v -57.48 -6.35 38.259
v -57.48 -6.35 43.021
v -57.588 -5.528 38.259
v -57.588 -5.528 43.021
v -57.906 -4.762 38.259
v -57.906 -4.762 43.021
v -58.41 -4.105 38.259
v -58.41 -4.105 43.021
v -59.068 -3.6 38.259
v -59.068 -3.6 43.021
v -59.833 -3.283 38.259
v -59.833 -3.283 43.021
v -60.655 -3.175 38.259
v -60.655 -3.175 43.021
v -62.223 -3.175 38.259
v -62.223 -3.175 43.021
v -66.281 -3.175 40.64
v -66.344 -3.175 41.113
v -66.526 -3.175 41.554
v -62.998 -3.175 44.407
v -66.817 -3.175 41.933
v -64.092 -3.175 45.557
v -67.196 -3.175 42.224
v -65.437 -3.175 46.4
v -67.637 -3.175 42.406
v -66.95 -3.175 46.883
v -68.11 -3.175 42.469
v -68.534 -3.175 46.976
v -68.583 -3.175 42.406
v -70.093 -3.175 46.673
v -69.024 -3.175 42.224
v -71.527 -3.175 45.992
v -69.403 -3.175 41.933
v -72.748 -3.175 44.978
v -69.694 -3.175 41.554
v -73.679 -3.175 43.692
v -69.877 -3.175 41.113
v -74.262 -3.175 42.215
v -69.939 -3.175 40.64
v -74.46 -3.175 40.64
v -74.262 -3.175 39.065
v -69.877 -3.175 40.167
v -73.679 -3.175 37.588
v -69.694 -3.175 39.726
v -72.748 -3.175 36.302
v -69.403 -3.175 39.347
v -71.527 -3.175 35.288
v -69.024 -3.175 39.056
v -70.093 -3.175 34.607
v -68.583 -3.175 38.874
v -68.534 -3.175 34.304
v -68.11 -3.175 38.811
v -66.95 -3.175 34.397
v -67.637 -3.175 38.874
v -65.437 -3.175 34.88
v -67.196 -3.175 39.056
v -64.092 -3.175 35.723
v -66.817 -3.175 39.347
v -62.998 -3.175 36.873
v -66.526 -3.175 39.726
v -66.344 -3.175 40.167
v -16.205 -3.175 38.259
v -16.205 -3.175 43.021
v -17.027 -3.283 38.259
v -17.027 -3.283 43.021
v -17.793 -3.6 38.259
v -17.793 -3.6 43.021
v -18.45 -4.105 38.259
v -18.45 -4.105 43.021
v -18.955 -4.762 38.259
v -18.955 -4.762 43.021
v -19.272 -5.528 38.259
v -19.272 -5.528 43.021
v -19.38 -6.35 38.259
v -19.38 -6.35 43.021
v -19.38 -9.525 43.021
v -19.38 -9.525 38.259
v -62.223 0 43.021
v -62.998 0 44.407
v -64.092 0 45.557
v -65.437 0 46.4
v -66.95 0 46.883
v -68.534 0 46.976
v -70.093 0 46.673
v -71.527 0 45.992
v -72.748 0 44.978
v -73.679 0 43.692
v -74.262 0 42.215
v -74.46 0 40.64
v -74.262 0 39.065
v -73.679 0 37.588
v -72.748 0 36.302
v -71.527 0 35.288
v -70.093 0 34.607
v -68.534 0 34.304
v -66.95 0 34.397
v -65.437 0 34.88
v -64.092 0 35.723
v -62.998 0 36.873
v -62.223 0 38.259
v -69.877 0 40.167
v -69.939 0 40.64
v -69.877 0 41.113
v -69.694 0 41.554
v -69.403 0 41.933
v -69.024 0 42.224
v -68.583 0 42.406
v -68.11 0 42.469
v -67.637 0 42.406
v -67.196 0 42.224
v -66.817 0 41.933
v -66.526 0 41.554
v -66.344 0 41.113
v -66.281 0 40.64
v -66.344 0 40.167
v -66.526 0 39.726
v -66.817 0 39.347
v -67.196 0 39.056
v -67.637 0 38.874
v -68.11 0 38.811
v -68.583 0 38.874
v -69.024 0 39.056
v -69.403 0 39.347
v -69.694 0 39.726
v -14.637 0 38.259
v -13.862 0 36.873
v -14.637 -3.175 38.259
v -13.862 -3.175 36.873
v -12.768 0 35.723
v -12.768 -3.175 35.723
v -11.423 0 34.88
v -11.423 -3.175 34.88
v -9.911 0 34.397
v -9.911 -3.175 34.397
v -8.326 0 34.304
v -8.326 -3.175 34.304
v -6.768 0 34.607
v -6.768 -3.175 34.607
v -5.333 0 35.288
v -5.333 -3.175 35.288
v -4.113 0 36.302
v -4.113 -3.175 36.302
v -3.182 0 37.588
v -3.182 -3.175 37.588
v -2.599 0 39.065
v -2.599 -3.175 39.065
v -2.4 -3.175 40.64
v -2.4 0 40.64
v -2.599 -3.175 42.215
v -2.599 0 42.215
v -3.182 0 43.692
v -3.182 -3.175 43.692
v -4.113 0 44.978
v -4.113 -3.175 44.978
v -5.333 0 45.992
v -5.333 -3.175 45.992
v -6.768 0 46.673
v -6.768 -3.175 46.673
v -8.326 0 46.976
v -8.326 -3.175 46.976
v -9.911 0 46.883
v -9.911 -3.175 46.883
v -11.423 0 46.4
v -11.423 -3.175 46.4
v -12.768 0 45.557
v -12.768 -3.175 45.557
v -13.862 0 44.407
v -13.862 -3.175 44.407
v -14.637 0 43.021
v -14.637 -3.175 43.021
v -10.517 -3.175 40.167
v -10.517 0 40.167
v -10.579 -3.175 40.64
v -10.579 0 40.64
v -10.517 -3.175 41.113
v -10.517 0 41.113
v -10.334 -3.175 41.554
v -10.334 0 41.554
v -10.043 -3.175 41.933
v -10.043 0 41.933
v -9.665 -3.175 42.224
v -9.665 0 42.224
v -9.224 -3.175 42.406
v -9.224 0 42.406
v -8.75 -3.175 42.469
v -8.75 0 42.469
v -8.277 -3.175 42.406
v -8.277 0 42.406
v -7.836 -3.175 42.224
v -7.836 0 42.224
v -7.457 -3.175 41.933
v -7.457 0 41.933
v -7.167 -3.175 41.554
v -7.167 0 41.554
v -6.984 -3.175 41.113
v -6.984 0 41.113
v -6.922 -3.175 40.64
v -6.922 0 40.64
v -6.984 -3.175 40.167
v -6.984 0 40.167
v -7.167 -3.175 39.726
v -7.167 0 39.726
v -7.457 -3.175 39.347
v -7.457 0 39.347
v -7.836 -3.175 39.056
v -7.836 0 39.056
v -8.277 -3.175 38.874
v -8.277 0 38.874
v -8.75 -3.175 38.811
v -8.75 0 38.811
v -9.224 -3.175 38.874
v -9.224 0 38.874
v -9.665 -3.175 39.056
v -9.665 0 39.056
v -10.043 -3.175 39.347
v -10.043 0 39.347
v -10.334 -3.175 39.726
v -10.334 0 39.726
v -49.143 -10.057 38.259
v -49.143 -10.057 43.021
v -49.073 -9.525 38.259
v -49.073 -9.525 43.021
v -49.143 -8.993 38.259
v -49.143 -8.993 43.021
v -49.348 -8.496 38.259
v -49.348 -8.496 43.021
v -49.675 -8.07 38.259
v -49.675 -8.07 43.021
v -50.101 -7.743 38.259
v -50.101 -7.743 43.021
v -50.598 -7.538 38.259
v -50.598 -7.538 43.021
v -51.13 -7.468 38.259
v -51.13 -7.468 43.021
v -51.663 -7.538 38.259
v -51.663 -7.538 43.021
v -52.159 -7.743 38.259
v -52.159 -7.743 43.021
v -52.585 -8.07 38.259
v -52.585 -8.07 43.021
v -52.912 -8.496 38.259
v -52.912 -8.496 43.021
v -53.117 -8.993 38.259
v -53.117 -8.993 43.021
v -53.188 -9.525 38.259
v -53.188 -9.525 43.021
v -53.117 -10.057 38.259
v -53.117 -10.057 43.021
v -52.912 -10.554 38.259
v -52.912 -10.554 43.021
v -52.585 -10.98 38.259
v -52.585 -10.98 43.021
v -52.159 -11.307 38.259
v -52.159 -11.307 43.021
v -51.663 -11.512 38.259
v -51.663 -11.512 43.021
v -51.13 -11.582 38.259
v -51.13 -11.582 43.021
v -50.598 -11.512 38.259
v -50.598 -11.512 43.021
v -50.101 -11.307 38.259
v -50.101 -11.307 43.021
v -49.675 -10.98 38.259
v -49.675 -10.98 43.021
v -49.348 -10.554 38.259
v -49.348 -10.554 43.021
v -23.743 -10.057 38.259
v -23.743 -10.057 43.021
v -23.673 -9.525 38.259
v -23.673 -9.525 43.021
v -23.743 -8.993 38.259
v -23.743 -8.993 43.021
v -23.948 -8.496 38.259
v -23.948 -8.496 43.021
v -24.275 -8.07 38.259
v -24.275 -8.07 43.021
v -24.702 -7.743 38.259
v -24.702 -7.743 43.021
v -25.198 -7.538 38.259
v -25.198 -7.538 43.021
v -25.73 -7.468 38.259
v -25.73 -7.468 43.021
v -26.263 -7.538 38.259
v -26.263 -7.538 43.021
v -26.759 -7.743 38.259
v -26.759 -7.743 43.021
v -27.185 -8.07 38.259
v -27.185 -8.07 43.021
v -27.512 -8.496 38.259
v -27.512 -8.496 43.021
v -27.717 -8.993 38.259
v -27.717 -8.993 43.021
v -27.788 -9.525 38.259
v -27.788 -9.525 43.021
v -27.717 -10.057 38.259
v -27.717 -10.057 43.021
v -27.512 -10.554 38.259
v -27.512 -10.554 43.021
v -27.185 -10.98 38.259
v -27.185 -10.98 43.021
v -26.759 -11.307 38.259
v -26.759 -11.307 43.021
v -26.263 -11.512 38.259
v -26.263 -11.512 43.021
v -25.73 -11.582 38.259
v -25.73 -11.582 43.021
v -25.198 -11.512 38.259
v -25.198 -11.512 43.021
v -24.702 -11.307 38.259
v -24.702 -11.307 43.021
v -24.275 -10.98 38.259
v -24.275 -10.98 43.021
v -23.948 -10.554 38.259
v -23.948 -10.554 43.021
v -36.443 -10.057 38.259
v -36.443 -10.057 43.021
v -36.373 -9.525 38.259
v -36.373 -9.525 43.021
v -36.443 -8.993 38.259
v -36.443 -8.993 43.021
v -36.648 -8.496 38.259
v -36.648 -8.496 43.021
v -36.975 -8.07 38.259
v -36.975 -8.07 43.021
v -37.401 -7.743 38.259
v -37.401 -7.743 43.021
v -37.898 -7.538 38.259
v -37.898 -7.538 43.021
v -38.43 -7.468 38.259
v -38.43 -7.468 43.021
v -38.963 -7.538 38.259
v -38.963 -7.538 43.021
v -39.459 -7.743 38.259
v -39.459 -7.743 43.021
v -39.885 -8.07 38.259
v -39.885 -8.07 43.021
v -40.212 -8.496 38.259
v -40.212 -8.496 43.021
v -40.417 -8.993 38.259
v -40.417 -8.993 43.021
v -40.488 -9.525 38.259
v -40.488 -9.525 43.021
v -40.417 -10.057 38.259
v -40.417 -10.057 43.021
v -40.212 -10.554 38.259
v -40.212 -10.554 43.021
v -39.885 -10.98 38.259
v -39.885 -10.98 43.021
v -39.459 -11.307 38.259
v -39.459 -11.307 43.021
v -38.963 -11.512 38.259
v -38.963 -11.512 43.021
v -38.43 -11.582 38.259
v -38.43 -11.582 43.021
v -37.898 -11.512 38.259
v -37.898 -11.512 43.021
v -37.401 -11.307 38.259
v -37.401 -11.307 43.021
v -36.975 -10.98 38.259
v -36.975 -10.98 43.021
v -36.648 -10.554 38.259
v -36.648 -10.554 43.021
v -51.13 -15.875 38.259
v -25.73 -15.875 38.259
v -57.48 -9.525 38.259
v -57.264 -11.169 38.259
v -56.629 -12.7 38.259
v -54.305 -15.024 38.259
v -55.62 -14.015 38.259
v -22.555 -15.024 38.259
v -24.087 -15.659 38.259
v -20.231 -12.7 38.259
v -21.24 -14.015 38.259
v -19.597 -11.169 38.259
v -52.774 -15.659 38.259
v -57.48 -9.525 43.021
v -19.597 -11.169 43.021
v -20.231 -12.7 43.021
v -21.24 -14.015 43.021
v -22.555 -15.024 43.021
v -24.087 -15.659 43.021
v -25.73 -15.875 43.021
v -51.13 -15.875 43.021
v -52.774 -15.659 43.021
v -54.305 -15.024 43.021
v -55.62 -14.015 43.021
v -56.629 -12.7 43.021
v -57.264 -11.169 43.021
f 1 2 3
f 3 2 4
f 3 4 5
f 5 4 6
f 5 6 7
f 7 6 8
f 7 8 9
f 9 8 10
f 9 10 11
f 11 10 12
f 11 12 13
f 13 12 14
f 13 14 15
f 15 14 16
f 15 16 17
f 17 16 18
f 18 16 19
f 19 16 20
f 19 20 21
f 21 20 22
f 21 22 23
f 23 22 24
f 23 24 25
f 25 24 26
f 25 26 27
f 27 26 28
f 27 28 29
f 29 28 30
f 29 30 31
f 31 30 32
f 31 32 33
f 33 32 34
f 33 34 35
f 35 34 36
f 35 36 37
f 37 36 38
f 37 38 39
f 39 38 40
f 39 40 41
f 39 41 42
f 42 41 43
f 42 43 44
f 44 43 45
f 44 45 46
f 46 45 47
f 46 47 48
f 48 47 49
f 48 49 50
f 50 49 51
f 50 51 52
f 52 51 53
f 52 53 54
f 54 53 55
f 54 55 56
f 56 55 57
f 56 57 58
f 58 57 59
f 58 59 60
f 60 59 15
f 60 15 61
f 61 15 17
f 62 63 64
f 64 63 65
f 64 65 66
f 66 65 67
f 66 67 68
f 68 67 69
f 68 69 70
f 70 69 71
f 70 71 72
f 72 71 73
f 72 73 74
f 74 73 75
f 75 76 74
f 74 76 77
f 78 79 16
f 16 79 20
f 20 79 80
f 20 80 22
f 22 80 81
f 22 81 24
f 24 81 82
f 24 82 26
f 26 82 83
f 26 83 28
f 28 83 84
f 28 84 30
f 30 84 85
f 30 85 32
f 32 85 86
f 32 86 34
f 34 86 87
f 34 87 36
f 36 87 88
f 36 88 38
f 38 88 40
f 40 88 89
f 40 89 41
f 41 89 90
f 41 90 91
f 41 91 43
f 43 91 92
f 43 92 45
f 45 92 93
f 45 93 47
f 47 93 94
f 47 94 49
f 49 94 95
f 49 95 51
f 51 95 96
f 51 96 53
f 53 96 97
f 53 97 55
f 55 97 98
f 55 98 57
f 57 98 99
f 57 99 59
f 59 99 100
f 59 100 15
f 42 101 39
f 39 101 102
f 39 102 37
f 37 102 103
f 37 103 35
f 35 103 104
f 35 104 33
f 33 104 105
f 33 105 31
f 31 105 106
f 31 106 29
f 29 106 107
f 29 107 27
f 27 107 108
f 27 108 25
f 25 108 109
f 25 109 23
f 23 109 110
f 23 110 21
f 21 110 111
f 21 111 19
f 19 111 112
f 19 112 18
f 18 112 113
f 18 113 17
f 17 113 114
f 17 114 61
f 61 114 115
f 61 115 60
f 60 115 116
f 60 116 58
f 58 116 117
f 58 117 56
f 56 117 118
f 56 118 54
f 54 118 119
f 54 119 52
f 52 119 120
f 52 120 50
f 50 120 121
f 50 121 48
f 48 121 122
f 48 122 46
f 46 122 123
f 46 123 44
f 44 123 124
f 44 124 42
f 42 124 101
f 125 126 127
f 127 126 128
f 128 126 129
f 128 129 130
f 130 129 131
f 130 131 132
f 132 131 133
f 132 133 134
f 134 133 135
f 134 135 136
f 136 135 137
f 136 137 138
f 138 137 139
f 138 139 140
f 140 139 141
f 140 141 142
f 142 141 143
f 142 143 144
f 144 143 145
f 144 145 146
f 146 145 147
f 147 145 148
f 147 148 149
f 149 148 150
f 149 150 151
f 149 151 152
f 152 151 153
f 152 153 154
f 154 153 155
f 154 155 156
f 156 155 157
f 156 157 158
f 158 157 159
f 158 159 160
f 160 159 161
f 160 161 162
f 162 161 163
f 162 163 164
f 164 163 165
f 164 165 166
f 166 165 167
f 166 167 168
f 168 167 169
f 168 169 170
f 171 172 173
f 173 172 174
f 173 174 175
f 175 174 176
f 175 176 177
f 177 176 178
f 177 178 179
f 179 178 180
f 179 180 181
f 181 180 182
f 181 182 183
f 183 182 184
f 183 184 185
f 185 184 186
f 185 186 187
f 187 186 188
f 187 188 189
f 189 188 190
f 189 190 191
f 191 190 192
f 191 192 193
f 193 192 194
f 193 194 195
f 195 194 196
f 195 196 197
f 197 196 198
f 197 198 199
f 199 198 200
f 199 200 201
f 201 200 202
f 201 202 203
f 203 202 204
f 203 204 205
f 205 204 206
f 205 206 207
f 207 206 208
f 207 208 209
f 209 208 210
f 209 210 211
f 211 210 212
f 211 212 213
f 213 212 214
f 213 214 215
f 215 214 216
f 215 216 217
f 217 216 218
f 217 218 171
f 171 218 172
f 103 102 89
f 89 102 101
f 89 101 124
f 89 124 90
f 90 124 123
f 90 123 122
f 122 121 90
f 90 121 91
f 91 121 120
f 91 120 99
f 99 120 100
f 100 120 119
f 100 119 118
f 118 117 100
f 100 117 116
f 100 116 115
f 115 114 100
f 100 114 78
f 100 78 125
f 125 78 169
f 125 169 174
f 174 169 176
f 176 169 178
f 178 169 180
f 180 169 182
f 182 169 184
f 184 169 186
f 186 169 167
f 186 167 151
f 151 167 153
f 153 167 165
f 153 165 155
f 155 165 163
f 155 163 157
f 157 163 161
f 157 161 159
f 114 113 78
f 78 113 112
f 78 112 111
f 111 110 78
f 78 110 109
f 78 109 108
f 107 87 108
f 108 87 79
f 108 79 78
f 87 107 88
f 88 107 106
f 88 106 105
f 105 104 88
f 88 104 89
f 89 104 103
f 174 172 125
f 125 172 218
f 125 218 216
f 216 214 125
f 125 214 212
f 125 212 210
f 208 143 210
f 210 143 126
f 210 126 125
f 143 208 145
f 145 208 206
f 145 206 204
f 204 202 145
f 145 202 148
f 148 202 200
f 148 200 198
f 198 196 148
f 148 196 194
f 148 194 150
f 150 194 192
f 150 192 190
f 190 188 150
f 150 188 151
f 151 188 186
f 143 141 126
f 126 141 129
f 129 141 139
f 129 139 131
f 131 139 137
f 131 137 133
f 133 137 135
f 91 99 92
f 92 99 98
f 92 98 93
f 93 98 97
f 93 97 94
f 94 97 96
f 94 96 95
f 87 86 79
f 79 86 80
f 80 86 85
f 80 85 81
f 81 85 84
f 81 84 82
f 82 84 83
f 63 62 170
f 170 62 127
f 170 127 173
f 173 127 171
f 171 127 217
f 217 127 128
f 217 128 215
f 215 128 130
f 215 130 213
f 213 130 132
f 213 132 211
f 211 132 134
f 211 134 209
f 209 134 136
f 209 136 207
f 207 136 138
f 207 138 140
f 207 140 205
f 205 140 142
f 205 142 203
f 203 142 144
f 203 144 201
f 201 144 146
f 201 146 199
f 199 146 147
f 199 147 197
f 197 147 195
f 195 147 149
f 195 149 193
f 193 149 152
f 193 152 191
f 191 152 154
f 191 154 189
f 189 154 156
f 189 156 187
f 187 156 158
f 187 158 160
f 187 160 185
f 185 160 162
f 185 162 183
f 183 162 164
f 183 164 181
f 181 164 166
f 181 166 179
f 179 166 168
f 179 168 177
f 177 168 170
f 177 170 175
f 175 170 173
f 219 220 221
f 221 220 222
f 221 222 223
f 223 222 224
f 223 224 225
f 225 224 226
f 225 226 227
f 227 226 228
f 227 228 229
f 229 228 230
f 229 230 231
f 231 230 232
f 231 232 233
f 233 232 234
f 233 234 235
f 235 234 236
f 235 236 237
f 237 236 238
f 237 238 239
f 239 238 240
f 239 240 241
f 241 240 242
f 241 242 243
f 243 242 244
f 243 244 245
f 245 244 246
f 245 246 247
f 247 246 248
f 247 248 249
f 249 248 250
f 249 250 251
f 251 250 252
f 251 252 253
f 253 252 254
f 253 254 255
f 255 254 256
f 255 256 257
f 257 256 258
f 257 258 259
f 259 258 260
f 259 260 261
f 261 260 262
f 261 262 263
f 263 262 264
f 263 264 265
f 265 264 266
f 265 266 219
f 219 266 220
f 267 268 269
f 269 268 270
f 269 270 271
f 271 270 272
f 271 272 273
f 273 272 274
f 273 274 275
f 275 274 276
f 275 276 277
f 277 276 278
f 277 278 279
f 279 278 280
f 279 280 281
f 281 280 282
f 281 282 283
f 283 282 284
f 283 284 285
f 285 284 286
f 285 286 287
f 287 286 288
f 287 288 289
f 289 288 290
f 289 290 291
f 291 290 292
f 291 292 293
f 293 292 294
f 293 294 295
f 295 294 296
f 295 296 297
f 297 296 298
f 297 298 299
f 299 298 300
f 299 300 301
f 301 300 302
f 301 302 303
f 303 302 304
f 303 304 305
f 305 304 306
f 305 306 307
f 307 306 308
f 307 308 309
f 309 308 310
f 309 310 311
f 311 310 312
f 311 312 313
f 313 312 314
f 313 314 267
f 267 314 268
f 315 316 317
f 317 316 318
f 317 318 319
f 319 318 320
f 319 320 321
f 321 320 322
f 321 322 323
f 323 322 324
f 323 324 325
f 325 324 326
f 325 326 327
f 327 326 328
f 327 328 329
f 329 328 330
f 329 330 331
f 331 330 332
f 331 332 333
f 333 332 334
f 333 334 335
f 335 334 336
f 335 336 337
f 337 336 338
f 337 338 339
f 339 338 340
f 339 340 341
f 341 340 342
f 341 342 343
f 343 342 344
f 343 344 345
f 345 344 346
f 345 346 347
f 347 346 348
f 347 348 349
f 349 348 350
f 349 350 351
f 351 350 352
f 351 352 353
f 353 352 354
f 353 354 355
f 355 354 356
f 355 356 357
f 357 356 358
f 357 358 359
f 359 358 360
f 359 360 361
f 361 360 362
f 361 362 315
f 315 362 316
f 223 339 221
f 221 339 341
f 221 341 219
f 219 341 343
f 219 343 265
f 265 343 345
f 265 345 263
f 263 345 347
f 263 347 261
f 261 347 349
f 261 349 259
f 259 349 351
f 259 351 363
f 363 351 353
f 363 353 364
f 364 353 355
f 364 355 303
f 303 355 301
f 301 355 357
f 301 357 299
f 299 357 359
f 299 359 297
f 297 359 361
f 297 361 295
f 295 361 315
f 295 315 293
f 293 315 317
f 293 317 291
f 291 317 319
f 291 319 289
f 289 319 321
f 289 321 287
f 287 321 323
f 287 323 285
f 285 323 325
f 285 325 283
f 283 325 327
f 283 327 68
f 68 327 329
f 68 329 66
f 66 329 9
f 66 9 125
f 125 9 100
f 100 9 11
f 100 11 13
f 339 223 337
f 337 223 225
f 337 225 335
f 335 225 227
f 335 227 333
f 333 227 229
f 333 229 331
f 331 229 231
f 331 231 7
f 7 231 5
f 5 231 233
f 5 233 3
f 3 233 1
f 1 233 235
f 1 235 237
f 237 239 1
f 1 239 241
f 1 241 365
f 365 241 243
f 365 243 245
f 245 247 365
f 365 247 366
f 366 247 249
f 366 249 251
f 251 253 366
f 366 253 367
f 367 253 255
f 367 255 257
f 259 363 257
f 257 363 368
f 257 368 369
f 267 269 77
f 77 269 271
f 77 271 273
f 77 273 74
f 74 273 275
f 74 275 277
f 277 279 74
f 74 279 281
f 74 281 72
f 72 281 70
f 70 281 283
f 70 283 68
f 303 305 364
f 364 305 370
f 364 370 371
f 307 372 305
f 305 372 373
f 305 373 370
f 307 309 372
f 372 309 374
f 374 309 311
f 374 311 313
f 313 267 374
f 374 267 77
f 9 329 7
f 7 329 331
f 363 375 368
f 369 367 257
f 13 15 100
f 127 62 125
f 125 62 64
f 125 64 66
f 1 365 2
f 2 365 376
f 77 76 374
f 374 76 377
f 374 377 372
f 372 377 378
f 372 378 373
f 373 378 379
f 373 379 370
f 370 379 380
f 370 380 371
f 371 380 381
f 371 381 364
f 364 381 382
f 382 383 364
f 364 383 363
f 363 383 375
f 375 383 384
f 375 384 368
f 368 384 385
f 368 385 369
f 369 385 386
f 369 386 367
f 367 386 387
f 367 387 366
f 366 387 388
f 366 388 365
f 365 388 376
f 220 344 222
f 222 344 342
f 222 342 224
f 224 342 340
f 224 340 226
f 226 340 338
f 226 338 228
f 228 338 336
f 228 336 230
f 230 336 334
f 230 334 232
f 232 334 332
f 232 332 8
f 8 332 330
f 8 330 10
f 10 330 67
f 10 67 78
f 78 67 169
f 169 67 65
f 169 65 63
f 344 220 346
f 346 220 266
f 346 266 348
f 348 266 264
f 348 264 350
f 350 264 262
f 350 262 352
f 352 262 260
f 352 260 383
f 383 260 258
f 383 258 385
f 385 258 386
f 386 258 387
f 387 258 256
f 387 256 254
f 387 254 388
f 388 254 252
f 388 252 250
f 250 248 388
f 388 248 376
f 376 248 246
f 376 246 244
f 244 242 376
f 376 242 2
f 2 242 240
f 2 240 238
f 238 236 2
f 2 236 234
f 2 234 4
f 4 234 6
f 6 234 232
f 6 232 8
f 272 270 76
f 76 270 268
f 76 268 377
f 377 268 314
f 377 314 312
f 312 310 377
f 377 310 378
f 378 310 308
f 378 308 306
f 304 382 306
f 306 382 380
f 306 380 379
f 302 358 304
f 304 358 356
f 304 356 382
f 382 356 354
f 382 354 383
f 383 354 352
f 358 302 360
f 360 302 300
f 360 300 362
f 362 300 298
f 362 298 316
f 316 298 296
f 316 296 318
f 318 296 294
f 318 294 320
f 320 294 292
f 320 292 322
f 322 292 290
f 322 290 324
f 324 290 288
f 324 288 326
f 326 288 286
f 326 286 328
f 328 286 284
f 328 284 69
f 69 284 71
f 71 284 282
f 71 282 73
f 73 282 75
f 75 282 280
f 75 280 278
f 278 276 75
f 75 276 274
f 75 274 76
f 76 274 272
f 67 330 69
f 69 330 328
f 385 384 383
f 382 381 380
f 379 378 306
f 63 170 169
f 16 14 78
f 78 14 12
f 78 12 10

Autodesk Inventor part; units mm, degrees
ref_plane "YZ Plane" through (0, 0, 0) normal (1, 0, 0) x (0, 1, 0)
ref_plane "Work Plane1" through (-38.4302, 0, 40.64) normal (0, -1, 0) x (-1, 0, 0)
sketch "Sketch1" plane through (-38.4302, 0, 40.64) normal (0, -1, 0) x (-1, 0, 0)
  circle A0 centre (29.6799, 0) radius 1.8288 construction
  circle A1 centre (-29.6799, 0) radius 1.8288 construction
  line L0 (-34.4805, -7.5946) -> (34.4805, -7.5946) construction
  line L1 (34.4805, -7.5946) -> (34.4805, -19.2786) construction
  line L2 (34.4805, -19.2786) -> (-34.4805, -19.2786) construction
  line L3 (-34.4805, -19.2786) -> (-34.4805, -7.5946) construction
  line L4 (34.4805, 7.5946) -> (-34.4805, 7.5946) construction
  line L5 (-34.4805, 7.5946) -> (-34.4805, 19.2786) construction
  line L6 (-34.4805, 19.2786) -> (34.4805, 19.2786) construction
  line L7 (34.4805, 19.2786) -> (34.4805, 7.5946) construction
  line L8 (-38.4302, 27.94) -> (38.4302, 27.94) construction
  line L9 (-38.4302, -27.94) -> (-38.4302, 27.94) construction
  line L10 (38.4302, -27.94) -> (-38.4302, -27.94) construction
  line L11 (38.4302, 27.94) -> (38.4302, -27.94) construction
  circle A2 centre (-29.6799, 0) radius 1.8288
  circle A3 centre (29.6799, 0) radius 1.8288
  circle A4 centre (29.6799, 0) radius 6.35
  circle A5 centre (-29.6799, 0) radius 6.35
  point P0 (-38.4302, 40.64)
  dimension "d0" = 12.7
  dimension "d1" = 12.7
extrude "Extrusion1" add sketch "Sketch1" along normal blind 3.175
ref_plane "Work Plane2" through (-76.8604, 0, 40.64) normal (0, 0, 1) x (1, 0, 0)
sketch "Sketch2" plane through (-76.8604, 0, 40.64) normal (0, 0, 1) x (1, 0, 0)
  line L0 (10.5791, -3.175) -> (6.9215, -3.175) construction
  line L1 (6.9215, 0) -> (10.5791, 0) construction
  line L2 (69.9389, -3.175) -> (66.2813, -3.175) construction
  line L3 (66.2813, 0) -> (69.9389, 0) construction
  line L4 (6.9215, 0) -> (10.5791, 0) construction
  line L5 (8.7503, 0) -> (68.1101, 0) construction
  line L6 (-4.3871, -3.175) -> (85.3512, -3.175) construction
  circle A0 centre (38.4302, -9.525) radius 2.0574
  circle A1 centre (38.4302, -9.525) radius 6.35 construction
  line L7 (38.4302, 0) -> (38.4302, -31.2723) construction
  circle A2 centre (51.1302, -9.525) radius 2.0574
  arc A3 (51.1302, -15.875) -> (57.4802, -9.525) centre (51.1302, -9.525) ccw
  circle A4 centre (25.7302, -9.525) radius 2.0574
  arc A5 (19.3802, -9.525) -> (25.7302, -15.875) centre (25.7302, -9.525) ccw
  line L8 (25.7302, -15.875) -> (51.1302, -15.875)
  line L9 (19.3802, -3.175) -> (57.4802, -3.175)
  line L10 (19.3802, -9.525) -> (19.3802, -3.175)
  line L11 (57.4802, -9.525) -> (57.4802, -3.175)
  point P0 (76.8604, 0)
  point P1 (25.7302, -3.175)
  point P2 (51.1302, -3.175)
  dimension "d4" = 3.175
  dimension "d5" = 4.1148
  dimension "d6" = 12.7
  dimension "d7" = 4.1148
  dimension "d8" = 12.7
extrude "Extrusion2" add sketch "Sketch2" along normal mid plane 4.7625
sketch "Sketch3" plane through (-68.1101, 0, 40.64) normal (0, 1, 0) x (1, 0, 0)
  circle A0 centre (0, 0) radius 6.35 construction
  circle A1 centre (59.3598, 0) radius 6.35 construction
  line L0 (10.6299, 2.3813) -> (48.7299, 2.3813) construction
  line L1 (48.7299, -2.3812) -> (10.6299, -2.3812) construction
  line L2 (5.8866, 2.3813) -> (53.4732, 2.3813)
  line L3 (5.8866, -2.3812) -> (53.4732, -2.3812)
  circle A2 centre (0, 0) radius 1.8288 construction
  arc A3 (5.8866, -2.3812) -> (5.8866, 2.3813) centre (0, 0) ccw
  circle A4 centre (59.3598, 0) radius 1.8288 construction
  arc A5 (53.4732, 2.3813) -> (53.4732, -2.3812) centre (59.3598, 0) ccw
  point P0 (68.1101, 40.64)
extrude "Extrusion3" add sketch "Sketch3" against normal up to surface (3.175 mm away)
fillet "Fillet1" radius 3.175 2 edges at (-19.3802, -3.175, 40.64) (-57.4802, -3.175, 40.64)
properties part number "ChassisPrototypeA3"
